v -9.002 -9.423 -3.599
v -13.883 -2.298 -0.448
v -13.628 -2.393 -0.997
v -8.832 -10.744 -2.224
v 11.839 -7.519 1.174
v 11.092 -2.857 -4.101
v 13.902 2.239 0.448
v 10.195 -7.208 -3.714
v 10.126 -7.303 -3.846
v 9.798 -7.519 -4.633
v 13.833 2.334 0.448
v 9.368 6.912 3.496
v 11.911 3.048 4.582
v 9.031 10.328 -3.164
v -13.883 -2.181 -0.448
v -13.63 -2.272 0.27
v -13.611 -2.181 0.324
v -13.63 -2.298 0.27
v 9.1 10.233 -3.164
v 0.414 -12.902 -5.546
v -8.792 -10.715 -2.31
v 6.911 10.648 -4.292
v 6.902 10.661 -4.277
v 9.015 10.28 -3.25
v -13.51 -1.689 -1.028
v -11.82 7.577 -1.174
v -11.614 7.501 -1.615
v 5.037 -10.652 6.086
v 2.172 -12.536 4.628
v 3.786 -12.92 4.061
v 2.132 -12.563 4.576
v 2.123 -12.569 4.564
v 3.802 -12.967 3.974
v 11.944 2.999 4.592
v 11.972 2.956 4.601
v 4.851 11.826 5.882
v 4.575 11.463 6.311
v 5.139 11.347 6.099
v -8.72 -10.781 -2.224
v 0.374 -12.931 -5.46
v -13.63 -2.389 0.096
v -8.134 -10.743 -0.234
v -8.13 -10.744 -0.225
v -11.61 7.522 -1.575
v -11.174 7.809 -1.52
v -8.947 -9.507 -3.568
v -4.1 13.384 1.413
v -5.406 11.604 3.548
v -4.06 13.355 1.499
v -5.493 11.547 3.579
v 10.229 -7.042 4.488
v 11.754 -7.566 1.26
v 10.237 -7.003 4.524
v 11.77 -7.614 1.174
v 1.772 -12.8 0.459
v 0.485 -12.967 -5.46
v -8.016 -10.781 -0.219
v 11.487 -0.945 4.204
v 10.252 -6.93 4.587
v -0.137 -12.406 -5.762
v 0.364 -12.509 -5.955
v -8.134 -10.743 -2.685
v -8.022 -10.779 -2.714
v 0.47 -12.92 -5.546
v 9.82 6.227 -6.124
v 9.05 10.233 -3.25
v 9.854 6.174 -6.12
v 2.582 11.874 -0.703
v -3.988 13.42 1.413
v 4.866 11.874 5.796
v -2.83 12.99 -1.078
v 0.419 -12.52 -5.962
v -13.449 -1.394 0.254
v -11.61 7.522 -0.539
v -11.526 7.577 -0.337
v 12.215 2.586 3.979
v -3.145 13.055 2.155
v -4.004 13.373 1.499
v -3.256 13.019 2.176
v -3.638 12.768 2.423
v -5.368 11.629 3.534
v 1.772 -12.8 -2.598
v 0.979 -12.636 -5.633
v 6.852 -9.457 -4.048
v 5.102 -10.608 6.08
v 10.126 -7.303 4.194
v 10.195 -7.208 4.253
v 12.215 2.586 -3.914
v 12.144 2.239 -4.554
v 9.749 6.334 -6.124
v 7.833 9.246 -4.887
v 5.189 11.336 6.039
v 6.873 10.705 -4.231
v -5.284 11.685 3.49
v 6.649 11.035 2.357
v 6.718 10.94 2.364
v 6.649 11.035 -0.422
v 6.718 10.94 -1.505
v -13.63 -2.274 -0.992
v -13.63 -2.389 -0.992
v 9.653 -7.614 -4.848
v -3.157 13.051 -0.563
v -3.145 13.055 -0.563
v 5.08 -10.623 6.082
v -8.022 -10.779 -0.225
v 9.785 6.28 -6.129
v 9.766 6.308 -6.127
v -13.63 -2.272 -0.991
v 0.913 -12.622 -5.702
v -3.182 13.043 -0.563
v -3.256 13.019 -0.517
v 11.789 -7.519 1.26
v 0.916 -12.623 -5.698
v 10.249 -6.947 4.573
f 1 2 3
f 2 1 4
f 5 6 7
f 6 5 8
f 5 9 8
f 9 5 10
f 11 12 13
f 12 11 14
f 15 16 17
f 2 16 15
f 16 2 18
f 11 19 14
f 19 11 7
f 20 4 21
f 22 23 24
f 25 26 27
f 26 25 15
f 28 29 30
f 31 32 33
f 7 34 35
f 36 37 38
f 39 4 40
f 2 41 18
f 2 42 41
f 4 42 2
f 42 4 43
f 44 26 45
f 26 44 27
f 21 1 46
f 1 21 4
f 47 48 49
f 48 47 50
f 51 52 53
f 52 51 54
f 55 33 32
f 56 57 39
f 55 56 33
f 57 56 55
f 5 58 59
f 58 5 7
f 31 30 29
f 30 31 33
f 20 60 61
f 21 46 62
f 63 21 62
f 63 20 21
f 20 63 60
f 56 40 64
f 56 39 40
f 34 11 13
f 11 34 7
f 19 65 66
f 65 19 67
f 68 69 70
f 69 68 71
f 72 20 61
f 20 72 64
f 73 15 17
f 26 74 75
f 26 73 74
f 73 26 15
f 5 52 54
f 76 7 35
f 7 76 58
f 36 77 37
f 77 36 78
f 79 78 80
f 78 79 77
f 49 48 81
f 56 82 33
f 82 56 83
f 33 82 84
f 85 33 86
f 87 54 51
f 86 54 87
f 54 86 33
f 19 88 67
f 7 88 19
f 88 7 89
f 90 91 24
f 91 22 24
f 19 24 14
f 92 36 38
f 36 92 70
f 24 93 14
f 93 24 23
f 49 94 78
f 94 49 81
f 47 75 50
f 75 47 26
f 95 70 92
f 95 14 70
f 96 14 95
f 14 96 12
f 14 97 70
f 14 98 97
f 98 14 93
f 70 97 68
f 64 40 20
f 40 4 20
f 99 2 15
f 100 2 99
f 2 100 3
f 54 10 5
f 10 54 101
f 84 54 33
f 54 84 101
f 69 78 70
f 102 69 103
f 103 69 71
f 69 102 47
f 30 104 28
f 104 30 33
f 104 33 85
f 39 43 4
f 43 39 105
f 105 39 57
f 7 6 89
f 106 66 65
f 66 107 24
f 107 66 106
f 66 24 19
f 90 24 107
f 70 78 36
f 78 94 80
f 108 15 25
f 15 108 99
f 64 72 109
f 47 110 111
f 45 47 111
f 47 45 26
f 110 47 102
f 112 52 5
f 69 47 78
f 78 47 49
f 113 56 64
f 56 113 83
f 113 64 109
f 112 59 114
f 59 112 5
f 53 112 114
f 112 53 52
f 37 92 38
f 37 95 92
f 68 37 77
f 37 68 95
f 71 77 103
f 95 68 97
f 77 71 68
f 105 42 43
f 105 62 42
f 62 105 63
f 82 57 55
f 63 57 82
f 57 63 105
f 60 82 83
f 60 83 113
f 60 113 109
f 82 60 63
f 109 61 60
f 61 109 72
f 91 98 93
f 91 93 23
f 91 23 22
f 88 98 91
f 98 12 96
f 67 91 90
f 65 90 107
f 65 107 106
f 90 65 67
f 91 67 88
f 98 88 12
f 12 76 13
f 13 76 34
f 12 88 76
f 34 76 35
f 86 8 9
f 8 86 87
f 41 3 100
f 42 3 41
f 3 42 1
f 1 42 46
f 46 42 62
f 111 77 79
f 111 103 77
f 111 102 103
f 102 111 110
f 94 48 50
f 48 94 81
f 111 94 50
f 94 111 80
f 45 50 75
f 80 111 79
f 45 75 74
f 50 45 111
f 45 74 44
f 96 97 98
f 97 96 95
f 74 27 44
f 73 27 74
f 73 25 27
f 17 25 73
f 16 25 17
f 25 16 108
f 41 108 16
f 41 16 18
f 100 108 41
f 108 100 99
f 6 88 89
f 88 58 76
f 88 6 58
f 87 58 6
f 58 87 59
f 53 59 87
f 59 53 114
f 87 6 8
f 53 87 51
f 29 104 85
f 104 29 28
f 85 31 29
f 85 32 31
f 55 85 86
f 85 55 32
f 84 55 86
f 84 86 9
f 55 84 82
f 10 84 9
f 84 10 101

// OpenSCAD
// Auto-generated OpenSCAD file

    inner_points = 10*[[0.5189873908693398, 0.4014612830439682, 1.207106781182594], [-0.6624123844142482, -0.37590257703693897, 1.207106781190501], [-0.4603944268129078, 0.6034792406453087, 1.2071067811886023], [0.3169694332679993, -0.5779205346382793, 1.2071067811844927], [0.07113577095377736, 0.7053068776558797, -1.20710678118789], [0.6208150278663372, -0.13006891473940857, -1.207106781190796], [-0.7642400214415109, 0.15562762074331987, -1.2071067811822989], [-0.21456076452895106, -0.6797481716519684, -1.207106781185205], [0.6618356586062716, 1.0939888076974356, 0.4999999999947038], [0.6618356586000035, 1.0939888076967899, -0.5000000000052962], [1.2115149155188314, 0.2586130153021473, 0.49999999999179784], [1.2115149155125633, 0.25861301530150155, -0.5000000000082021], [-1.3549399090726046, -0.23305430929603127, 0.5000000000082021], [-1.3549399090788727, -0.23305430929667703, -0.49999999999179784], [-0.8052606521600446, -1.0684301016913196, 0.5000000000052962], [-0.8052606521663127, -1.0684301016919653, -0.4999999999947038], [-0.3175461590759757, 1.2960067652987761, 0.5000000000007122], [-0.3175461590822439, 1.2960067652981304, -0.49999999999928774], [1.009496957917491, -0.7207688023801, 0.49999999999369654], [1.009496957911223, -0.7207688023807458, -0.5000000000063035], [-1.1529219514712643, 0.7463275083862161, 0.5000000000063035], [-1.1529219514775324, 0.7463275083855703, -0.49999999999369654], [0.17412116552220275, -1.2704480592926601, 0.49999999999928774], [0.1741211655159346, -1.2704480592933058, -0.5000000000007122]];

    outer_points = 10*[[0.014534033109566136, 1.1778924537288806, -0.7546289886538113], [0.48351692784779204, 1.1778924537288806, 0.5795580463764929], [-0.4019230788858629, 1.3325180477160121, 0.14128082798654307], [0.8999740398432211, 1.0232668597417491, -0.31635177026386146], [-0.8751261135739088, -1.068555647675582, -0.22237332202445173], [0.04545416748665429, -1.2872292597821793, -0.5459684355393317], [-0.5435051284440124, -1.068555647675582, 0.7210393778166502], [0.37707515261655067, -1.2872292597821793, 0.39744426430177016], [-0.7574423490735973, 0.5972358354047242, -1.0132606900126142], [-0.963741811855088, -0.37856222329812717, -0.9407439313439117], [0.16313793198696575, 0.37856222329812717, -1.3368558035274942], [-0.043161530794524894, -0.5972358354047242, -1.2643390448587917], [0.043161530794524894, 0.5972358354047242, 1.2643390448587917], [-0.16313793198696575, -0.37856222329812717, 1.3368558035274942], [0.963741811855088, 0.37856222329812717, 0.9407439313439117], [0.7574423490735973, -0.5972358354047242, 1.0132606900126142], [-1.173899461069026, 0.7518614293918557, -0.11735087337226002], [-1.380198923850517, -0.22393662931099567, -0.04483411470355736], [1.0485779387206207, 0.22393662931099567, -0.8985785851375445], [0.8422784759391297, -0.7518614293918557, -0.8260618264688419], [-0.8422784759391297, 0.7518614293918557, 0.8260618264688419], [-1.0485779387206207, -0.22393662931099567, 0.8985785851375445], [1.380198923850517, 0.22393662931099567, 0.04483411470355736], [1.173899461069026, -0.7518614293918557, 0.11735087337226002]];

    // Convex hull for inner set (I)
    module inner_hull() {
        hull() {
            for (p = inner_points) {
                translate(p) sphere(r=0.1);
            }
        }
    }

    // Convex hull for outer set (O) minus inner hull (O \ I)
    module outer_minus_inner() {
        difference() {
            hull() {
                for (p = outer_points) {
                    translate(p) sphere(r=0.1);
                }
            }
            inner_hull(); // Subtract inner hull
        }
    }

    // Convex hull for outer set (O) minus all translated inner hulls
    module outer_minus_AllTranslationInner() {
        difference() {
            hull() {
                for (p = outer_points) {
                    translate(p) sphere(r=0.1);
                }
            }
            hull() {
                translate([0,0,50]) inner_hull();
                translate([0,0,-50]) inner_hull();
            }; // Subtract translated inner hulls
        }
    }

    // Difference between outer_minus_inner and outer_minus_AllTranslationInner
    module outer_minus_inner_diff() {
        difference() {
            // Outer minus inner
            difference() {
                hull() {
                    for (p = outer_points) {
                        translate(p) sphere(r=0.1);
                    }
                }
                inner_hull();
            }

            // Subtract Outer minus AllTranslationInner
            difference() {
                hull() {
                    for (p = outer_points) {
                        translate(p) sphere(r=0.1);
                    }
                }
                hull() {
                    translate([0,0,50]) inner_hull();
                    translate([0,0,-50]) inner_hull();
                };
            }
        }
    }

    // Rendering all with colors applied
    color([0, 1, 0, 1]) outer_minus_AllTranslationInner(); // Opaque green
    
